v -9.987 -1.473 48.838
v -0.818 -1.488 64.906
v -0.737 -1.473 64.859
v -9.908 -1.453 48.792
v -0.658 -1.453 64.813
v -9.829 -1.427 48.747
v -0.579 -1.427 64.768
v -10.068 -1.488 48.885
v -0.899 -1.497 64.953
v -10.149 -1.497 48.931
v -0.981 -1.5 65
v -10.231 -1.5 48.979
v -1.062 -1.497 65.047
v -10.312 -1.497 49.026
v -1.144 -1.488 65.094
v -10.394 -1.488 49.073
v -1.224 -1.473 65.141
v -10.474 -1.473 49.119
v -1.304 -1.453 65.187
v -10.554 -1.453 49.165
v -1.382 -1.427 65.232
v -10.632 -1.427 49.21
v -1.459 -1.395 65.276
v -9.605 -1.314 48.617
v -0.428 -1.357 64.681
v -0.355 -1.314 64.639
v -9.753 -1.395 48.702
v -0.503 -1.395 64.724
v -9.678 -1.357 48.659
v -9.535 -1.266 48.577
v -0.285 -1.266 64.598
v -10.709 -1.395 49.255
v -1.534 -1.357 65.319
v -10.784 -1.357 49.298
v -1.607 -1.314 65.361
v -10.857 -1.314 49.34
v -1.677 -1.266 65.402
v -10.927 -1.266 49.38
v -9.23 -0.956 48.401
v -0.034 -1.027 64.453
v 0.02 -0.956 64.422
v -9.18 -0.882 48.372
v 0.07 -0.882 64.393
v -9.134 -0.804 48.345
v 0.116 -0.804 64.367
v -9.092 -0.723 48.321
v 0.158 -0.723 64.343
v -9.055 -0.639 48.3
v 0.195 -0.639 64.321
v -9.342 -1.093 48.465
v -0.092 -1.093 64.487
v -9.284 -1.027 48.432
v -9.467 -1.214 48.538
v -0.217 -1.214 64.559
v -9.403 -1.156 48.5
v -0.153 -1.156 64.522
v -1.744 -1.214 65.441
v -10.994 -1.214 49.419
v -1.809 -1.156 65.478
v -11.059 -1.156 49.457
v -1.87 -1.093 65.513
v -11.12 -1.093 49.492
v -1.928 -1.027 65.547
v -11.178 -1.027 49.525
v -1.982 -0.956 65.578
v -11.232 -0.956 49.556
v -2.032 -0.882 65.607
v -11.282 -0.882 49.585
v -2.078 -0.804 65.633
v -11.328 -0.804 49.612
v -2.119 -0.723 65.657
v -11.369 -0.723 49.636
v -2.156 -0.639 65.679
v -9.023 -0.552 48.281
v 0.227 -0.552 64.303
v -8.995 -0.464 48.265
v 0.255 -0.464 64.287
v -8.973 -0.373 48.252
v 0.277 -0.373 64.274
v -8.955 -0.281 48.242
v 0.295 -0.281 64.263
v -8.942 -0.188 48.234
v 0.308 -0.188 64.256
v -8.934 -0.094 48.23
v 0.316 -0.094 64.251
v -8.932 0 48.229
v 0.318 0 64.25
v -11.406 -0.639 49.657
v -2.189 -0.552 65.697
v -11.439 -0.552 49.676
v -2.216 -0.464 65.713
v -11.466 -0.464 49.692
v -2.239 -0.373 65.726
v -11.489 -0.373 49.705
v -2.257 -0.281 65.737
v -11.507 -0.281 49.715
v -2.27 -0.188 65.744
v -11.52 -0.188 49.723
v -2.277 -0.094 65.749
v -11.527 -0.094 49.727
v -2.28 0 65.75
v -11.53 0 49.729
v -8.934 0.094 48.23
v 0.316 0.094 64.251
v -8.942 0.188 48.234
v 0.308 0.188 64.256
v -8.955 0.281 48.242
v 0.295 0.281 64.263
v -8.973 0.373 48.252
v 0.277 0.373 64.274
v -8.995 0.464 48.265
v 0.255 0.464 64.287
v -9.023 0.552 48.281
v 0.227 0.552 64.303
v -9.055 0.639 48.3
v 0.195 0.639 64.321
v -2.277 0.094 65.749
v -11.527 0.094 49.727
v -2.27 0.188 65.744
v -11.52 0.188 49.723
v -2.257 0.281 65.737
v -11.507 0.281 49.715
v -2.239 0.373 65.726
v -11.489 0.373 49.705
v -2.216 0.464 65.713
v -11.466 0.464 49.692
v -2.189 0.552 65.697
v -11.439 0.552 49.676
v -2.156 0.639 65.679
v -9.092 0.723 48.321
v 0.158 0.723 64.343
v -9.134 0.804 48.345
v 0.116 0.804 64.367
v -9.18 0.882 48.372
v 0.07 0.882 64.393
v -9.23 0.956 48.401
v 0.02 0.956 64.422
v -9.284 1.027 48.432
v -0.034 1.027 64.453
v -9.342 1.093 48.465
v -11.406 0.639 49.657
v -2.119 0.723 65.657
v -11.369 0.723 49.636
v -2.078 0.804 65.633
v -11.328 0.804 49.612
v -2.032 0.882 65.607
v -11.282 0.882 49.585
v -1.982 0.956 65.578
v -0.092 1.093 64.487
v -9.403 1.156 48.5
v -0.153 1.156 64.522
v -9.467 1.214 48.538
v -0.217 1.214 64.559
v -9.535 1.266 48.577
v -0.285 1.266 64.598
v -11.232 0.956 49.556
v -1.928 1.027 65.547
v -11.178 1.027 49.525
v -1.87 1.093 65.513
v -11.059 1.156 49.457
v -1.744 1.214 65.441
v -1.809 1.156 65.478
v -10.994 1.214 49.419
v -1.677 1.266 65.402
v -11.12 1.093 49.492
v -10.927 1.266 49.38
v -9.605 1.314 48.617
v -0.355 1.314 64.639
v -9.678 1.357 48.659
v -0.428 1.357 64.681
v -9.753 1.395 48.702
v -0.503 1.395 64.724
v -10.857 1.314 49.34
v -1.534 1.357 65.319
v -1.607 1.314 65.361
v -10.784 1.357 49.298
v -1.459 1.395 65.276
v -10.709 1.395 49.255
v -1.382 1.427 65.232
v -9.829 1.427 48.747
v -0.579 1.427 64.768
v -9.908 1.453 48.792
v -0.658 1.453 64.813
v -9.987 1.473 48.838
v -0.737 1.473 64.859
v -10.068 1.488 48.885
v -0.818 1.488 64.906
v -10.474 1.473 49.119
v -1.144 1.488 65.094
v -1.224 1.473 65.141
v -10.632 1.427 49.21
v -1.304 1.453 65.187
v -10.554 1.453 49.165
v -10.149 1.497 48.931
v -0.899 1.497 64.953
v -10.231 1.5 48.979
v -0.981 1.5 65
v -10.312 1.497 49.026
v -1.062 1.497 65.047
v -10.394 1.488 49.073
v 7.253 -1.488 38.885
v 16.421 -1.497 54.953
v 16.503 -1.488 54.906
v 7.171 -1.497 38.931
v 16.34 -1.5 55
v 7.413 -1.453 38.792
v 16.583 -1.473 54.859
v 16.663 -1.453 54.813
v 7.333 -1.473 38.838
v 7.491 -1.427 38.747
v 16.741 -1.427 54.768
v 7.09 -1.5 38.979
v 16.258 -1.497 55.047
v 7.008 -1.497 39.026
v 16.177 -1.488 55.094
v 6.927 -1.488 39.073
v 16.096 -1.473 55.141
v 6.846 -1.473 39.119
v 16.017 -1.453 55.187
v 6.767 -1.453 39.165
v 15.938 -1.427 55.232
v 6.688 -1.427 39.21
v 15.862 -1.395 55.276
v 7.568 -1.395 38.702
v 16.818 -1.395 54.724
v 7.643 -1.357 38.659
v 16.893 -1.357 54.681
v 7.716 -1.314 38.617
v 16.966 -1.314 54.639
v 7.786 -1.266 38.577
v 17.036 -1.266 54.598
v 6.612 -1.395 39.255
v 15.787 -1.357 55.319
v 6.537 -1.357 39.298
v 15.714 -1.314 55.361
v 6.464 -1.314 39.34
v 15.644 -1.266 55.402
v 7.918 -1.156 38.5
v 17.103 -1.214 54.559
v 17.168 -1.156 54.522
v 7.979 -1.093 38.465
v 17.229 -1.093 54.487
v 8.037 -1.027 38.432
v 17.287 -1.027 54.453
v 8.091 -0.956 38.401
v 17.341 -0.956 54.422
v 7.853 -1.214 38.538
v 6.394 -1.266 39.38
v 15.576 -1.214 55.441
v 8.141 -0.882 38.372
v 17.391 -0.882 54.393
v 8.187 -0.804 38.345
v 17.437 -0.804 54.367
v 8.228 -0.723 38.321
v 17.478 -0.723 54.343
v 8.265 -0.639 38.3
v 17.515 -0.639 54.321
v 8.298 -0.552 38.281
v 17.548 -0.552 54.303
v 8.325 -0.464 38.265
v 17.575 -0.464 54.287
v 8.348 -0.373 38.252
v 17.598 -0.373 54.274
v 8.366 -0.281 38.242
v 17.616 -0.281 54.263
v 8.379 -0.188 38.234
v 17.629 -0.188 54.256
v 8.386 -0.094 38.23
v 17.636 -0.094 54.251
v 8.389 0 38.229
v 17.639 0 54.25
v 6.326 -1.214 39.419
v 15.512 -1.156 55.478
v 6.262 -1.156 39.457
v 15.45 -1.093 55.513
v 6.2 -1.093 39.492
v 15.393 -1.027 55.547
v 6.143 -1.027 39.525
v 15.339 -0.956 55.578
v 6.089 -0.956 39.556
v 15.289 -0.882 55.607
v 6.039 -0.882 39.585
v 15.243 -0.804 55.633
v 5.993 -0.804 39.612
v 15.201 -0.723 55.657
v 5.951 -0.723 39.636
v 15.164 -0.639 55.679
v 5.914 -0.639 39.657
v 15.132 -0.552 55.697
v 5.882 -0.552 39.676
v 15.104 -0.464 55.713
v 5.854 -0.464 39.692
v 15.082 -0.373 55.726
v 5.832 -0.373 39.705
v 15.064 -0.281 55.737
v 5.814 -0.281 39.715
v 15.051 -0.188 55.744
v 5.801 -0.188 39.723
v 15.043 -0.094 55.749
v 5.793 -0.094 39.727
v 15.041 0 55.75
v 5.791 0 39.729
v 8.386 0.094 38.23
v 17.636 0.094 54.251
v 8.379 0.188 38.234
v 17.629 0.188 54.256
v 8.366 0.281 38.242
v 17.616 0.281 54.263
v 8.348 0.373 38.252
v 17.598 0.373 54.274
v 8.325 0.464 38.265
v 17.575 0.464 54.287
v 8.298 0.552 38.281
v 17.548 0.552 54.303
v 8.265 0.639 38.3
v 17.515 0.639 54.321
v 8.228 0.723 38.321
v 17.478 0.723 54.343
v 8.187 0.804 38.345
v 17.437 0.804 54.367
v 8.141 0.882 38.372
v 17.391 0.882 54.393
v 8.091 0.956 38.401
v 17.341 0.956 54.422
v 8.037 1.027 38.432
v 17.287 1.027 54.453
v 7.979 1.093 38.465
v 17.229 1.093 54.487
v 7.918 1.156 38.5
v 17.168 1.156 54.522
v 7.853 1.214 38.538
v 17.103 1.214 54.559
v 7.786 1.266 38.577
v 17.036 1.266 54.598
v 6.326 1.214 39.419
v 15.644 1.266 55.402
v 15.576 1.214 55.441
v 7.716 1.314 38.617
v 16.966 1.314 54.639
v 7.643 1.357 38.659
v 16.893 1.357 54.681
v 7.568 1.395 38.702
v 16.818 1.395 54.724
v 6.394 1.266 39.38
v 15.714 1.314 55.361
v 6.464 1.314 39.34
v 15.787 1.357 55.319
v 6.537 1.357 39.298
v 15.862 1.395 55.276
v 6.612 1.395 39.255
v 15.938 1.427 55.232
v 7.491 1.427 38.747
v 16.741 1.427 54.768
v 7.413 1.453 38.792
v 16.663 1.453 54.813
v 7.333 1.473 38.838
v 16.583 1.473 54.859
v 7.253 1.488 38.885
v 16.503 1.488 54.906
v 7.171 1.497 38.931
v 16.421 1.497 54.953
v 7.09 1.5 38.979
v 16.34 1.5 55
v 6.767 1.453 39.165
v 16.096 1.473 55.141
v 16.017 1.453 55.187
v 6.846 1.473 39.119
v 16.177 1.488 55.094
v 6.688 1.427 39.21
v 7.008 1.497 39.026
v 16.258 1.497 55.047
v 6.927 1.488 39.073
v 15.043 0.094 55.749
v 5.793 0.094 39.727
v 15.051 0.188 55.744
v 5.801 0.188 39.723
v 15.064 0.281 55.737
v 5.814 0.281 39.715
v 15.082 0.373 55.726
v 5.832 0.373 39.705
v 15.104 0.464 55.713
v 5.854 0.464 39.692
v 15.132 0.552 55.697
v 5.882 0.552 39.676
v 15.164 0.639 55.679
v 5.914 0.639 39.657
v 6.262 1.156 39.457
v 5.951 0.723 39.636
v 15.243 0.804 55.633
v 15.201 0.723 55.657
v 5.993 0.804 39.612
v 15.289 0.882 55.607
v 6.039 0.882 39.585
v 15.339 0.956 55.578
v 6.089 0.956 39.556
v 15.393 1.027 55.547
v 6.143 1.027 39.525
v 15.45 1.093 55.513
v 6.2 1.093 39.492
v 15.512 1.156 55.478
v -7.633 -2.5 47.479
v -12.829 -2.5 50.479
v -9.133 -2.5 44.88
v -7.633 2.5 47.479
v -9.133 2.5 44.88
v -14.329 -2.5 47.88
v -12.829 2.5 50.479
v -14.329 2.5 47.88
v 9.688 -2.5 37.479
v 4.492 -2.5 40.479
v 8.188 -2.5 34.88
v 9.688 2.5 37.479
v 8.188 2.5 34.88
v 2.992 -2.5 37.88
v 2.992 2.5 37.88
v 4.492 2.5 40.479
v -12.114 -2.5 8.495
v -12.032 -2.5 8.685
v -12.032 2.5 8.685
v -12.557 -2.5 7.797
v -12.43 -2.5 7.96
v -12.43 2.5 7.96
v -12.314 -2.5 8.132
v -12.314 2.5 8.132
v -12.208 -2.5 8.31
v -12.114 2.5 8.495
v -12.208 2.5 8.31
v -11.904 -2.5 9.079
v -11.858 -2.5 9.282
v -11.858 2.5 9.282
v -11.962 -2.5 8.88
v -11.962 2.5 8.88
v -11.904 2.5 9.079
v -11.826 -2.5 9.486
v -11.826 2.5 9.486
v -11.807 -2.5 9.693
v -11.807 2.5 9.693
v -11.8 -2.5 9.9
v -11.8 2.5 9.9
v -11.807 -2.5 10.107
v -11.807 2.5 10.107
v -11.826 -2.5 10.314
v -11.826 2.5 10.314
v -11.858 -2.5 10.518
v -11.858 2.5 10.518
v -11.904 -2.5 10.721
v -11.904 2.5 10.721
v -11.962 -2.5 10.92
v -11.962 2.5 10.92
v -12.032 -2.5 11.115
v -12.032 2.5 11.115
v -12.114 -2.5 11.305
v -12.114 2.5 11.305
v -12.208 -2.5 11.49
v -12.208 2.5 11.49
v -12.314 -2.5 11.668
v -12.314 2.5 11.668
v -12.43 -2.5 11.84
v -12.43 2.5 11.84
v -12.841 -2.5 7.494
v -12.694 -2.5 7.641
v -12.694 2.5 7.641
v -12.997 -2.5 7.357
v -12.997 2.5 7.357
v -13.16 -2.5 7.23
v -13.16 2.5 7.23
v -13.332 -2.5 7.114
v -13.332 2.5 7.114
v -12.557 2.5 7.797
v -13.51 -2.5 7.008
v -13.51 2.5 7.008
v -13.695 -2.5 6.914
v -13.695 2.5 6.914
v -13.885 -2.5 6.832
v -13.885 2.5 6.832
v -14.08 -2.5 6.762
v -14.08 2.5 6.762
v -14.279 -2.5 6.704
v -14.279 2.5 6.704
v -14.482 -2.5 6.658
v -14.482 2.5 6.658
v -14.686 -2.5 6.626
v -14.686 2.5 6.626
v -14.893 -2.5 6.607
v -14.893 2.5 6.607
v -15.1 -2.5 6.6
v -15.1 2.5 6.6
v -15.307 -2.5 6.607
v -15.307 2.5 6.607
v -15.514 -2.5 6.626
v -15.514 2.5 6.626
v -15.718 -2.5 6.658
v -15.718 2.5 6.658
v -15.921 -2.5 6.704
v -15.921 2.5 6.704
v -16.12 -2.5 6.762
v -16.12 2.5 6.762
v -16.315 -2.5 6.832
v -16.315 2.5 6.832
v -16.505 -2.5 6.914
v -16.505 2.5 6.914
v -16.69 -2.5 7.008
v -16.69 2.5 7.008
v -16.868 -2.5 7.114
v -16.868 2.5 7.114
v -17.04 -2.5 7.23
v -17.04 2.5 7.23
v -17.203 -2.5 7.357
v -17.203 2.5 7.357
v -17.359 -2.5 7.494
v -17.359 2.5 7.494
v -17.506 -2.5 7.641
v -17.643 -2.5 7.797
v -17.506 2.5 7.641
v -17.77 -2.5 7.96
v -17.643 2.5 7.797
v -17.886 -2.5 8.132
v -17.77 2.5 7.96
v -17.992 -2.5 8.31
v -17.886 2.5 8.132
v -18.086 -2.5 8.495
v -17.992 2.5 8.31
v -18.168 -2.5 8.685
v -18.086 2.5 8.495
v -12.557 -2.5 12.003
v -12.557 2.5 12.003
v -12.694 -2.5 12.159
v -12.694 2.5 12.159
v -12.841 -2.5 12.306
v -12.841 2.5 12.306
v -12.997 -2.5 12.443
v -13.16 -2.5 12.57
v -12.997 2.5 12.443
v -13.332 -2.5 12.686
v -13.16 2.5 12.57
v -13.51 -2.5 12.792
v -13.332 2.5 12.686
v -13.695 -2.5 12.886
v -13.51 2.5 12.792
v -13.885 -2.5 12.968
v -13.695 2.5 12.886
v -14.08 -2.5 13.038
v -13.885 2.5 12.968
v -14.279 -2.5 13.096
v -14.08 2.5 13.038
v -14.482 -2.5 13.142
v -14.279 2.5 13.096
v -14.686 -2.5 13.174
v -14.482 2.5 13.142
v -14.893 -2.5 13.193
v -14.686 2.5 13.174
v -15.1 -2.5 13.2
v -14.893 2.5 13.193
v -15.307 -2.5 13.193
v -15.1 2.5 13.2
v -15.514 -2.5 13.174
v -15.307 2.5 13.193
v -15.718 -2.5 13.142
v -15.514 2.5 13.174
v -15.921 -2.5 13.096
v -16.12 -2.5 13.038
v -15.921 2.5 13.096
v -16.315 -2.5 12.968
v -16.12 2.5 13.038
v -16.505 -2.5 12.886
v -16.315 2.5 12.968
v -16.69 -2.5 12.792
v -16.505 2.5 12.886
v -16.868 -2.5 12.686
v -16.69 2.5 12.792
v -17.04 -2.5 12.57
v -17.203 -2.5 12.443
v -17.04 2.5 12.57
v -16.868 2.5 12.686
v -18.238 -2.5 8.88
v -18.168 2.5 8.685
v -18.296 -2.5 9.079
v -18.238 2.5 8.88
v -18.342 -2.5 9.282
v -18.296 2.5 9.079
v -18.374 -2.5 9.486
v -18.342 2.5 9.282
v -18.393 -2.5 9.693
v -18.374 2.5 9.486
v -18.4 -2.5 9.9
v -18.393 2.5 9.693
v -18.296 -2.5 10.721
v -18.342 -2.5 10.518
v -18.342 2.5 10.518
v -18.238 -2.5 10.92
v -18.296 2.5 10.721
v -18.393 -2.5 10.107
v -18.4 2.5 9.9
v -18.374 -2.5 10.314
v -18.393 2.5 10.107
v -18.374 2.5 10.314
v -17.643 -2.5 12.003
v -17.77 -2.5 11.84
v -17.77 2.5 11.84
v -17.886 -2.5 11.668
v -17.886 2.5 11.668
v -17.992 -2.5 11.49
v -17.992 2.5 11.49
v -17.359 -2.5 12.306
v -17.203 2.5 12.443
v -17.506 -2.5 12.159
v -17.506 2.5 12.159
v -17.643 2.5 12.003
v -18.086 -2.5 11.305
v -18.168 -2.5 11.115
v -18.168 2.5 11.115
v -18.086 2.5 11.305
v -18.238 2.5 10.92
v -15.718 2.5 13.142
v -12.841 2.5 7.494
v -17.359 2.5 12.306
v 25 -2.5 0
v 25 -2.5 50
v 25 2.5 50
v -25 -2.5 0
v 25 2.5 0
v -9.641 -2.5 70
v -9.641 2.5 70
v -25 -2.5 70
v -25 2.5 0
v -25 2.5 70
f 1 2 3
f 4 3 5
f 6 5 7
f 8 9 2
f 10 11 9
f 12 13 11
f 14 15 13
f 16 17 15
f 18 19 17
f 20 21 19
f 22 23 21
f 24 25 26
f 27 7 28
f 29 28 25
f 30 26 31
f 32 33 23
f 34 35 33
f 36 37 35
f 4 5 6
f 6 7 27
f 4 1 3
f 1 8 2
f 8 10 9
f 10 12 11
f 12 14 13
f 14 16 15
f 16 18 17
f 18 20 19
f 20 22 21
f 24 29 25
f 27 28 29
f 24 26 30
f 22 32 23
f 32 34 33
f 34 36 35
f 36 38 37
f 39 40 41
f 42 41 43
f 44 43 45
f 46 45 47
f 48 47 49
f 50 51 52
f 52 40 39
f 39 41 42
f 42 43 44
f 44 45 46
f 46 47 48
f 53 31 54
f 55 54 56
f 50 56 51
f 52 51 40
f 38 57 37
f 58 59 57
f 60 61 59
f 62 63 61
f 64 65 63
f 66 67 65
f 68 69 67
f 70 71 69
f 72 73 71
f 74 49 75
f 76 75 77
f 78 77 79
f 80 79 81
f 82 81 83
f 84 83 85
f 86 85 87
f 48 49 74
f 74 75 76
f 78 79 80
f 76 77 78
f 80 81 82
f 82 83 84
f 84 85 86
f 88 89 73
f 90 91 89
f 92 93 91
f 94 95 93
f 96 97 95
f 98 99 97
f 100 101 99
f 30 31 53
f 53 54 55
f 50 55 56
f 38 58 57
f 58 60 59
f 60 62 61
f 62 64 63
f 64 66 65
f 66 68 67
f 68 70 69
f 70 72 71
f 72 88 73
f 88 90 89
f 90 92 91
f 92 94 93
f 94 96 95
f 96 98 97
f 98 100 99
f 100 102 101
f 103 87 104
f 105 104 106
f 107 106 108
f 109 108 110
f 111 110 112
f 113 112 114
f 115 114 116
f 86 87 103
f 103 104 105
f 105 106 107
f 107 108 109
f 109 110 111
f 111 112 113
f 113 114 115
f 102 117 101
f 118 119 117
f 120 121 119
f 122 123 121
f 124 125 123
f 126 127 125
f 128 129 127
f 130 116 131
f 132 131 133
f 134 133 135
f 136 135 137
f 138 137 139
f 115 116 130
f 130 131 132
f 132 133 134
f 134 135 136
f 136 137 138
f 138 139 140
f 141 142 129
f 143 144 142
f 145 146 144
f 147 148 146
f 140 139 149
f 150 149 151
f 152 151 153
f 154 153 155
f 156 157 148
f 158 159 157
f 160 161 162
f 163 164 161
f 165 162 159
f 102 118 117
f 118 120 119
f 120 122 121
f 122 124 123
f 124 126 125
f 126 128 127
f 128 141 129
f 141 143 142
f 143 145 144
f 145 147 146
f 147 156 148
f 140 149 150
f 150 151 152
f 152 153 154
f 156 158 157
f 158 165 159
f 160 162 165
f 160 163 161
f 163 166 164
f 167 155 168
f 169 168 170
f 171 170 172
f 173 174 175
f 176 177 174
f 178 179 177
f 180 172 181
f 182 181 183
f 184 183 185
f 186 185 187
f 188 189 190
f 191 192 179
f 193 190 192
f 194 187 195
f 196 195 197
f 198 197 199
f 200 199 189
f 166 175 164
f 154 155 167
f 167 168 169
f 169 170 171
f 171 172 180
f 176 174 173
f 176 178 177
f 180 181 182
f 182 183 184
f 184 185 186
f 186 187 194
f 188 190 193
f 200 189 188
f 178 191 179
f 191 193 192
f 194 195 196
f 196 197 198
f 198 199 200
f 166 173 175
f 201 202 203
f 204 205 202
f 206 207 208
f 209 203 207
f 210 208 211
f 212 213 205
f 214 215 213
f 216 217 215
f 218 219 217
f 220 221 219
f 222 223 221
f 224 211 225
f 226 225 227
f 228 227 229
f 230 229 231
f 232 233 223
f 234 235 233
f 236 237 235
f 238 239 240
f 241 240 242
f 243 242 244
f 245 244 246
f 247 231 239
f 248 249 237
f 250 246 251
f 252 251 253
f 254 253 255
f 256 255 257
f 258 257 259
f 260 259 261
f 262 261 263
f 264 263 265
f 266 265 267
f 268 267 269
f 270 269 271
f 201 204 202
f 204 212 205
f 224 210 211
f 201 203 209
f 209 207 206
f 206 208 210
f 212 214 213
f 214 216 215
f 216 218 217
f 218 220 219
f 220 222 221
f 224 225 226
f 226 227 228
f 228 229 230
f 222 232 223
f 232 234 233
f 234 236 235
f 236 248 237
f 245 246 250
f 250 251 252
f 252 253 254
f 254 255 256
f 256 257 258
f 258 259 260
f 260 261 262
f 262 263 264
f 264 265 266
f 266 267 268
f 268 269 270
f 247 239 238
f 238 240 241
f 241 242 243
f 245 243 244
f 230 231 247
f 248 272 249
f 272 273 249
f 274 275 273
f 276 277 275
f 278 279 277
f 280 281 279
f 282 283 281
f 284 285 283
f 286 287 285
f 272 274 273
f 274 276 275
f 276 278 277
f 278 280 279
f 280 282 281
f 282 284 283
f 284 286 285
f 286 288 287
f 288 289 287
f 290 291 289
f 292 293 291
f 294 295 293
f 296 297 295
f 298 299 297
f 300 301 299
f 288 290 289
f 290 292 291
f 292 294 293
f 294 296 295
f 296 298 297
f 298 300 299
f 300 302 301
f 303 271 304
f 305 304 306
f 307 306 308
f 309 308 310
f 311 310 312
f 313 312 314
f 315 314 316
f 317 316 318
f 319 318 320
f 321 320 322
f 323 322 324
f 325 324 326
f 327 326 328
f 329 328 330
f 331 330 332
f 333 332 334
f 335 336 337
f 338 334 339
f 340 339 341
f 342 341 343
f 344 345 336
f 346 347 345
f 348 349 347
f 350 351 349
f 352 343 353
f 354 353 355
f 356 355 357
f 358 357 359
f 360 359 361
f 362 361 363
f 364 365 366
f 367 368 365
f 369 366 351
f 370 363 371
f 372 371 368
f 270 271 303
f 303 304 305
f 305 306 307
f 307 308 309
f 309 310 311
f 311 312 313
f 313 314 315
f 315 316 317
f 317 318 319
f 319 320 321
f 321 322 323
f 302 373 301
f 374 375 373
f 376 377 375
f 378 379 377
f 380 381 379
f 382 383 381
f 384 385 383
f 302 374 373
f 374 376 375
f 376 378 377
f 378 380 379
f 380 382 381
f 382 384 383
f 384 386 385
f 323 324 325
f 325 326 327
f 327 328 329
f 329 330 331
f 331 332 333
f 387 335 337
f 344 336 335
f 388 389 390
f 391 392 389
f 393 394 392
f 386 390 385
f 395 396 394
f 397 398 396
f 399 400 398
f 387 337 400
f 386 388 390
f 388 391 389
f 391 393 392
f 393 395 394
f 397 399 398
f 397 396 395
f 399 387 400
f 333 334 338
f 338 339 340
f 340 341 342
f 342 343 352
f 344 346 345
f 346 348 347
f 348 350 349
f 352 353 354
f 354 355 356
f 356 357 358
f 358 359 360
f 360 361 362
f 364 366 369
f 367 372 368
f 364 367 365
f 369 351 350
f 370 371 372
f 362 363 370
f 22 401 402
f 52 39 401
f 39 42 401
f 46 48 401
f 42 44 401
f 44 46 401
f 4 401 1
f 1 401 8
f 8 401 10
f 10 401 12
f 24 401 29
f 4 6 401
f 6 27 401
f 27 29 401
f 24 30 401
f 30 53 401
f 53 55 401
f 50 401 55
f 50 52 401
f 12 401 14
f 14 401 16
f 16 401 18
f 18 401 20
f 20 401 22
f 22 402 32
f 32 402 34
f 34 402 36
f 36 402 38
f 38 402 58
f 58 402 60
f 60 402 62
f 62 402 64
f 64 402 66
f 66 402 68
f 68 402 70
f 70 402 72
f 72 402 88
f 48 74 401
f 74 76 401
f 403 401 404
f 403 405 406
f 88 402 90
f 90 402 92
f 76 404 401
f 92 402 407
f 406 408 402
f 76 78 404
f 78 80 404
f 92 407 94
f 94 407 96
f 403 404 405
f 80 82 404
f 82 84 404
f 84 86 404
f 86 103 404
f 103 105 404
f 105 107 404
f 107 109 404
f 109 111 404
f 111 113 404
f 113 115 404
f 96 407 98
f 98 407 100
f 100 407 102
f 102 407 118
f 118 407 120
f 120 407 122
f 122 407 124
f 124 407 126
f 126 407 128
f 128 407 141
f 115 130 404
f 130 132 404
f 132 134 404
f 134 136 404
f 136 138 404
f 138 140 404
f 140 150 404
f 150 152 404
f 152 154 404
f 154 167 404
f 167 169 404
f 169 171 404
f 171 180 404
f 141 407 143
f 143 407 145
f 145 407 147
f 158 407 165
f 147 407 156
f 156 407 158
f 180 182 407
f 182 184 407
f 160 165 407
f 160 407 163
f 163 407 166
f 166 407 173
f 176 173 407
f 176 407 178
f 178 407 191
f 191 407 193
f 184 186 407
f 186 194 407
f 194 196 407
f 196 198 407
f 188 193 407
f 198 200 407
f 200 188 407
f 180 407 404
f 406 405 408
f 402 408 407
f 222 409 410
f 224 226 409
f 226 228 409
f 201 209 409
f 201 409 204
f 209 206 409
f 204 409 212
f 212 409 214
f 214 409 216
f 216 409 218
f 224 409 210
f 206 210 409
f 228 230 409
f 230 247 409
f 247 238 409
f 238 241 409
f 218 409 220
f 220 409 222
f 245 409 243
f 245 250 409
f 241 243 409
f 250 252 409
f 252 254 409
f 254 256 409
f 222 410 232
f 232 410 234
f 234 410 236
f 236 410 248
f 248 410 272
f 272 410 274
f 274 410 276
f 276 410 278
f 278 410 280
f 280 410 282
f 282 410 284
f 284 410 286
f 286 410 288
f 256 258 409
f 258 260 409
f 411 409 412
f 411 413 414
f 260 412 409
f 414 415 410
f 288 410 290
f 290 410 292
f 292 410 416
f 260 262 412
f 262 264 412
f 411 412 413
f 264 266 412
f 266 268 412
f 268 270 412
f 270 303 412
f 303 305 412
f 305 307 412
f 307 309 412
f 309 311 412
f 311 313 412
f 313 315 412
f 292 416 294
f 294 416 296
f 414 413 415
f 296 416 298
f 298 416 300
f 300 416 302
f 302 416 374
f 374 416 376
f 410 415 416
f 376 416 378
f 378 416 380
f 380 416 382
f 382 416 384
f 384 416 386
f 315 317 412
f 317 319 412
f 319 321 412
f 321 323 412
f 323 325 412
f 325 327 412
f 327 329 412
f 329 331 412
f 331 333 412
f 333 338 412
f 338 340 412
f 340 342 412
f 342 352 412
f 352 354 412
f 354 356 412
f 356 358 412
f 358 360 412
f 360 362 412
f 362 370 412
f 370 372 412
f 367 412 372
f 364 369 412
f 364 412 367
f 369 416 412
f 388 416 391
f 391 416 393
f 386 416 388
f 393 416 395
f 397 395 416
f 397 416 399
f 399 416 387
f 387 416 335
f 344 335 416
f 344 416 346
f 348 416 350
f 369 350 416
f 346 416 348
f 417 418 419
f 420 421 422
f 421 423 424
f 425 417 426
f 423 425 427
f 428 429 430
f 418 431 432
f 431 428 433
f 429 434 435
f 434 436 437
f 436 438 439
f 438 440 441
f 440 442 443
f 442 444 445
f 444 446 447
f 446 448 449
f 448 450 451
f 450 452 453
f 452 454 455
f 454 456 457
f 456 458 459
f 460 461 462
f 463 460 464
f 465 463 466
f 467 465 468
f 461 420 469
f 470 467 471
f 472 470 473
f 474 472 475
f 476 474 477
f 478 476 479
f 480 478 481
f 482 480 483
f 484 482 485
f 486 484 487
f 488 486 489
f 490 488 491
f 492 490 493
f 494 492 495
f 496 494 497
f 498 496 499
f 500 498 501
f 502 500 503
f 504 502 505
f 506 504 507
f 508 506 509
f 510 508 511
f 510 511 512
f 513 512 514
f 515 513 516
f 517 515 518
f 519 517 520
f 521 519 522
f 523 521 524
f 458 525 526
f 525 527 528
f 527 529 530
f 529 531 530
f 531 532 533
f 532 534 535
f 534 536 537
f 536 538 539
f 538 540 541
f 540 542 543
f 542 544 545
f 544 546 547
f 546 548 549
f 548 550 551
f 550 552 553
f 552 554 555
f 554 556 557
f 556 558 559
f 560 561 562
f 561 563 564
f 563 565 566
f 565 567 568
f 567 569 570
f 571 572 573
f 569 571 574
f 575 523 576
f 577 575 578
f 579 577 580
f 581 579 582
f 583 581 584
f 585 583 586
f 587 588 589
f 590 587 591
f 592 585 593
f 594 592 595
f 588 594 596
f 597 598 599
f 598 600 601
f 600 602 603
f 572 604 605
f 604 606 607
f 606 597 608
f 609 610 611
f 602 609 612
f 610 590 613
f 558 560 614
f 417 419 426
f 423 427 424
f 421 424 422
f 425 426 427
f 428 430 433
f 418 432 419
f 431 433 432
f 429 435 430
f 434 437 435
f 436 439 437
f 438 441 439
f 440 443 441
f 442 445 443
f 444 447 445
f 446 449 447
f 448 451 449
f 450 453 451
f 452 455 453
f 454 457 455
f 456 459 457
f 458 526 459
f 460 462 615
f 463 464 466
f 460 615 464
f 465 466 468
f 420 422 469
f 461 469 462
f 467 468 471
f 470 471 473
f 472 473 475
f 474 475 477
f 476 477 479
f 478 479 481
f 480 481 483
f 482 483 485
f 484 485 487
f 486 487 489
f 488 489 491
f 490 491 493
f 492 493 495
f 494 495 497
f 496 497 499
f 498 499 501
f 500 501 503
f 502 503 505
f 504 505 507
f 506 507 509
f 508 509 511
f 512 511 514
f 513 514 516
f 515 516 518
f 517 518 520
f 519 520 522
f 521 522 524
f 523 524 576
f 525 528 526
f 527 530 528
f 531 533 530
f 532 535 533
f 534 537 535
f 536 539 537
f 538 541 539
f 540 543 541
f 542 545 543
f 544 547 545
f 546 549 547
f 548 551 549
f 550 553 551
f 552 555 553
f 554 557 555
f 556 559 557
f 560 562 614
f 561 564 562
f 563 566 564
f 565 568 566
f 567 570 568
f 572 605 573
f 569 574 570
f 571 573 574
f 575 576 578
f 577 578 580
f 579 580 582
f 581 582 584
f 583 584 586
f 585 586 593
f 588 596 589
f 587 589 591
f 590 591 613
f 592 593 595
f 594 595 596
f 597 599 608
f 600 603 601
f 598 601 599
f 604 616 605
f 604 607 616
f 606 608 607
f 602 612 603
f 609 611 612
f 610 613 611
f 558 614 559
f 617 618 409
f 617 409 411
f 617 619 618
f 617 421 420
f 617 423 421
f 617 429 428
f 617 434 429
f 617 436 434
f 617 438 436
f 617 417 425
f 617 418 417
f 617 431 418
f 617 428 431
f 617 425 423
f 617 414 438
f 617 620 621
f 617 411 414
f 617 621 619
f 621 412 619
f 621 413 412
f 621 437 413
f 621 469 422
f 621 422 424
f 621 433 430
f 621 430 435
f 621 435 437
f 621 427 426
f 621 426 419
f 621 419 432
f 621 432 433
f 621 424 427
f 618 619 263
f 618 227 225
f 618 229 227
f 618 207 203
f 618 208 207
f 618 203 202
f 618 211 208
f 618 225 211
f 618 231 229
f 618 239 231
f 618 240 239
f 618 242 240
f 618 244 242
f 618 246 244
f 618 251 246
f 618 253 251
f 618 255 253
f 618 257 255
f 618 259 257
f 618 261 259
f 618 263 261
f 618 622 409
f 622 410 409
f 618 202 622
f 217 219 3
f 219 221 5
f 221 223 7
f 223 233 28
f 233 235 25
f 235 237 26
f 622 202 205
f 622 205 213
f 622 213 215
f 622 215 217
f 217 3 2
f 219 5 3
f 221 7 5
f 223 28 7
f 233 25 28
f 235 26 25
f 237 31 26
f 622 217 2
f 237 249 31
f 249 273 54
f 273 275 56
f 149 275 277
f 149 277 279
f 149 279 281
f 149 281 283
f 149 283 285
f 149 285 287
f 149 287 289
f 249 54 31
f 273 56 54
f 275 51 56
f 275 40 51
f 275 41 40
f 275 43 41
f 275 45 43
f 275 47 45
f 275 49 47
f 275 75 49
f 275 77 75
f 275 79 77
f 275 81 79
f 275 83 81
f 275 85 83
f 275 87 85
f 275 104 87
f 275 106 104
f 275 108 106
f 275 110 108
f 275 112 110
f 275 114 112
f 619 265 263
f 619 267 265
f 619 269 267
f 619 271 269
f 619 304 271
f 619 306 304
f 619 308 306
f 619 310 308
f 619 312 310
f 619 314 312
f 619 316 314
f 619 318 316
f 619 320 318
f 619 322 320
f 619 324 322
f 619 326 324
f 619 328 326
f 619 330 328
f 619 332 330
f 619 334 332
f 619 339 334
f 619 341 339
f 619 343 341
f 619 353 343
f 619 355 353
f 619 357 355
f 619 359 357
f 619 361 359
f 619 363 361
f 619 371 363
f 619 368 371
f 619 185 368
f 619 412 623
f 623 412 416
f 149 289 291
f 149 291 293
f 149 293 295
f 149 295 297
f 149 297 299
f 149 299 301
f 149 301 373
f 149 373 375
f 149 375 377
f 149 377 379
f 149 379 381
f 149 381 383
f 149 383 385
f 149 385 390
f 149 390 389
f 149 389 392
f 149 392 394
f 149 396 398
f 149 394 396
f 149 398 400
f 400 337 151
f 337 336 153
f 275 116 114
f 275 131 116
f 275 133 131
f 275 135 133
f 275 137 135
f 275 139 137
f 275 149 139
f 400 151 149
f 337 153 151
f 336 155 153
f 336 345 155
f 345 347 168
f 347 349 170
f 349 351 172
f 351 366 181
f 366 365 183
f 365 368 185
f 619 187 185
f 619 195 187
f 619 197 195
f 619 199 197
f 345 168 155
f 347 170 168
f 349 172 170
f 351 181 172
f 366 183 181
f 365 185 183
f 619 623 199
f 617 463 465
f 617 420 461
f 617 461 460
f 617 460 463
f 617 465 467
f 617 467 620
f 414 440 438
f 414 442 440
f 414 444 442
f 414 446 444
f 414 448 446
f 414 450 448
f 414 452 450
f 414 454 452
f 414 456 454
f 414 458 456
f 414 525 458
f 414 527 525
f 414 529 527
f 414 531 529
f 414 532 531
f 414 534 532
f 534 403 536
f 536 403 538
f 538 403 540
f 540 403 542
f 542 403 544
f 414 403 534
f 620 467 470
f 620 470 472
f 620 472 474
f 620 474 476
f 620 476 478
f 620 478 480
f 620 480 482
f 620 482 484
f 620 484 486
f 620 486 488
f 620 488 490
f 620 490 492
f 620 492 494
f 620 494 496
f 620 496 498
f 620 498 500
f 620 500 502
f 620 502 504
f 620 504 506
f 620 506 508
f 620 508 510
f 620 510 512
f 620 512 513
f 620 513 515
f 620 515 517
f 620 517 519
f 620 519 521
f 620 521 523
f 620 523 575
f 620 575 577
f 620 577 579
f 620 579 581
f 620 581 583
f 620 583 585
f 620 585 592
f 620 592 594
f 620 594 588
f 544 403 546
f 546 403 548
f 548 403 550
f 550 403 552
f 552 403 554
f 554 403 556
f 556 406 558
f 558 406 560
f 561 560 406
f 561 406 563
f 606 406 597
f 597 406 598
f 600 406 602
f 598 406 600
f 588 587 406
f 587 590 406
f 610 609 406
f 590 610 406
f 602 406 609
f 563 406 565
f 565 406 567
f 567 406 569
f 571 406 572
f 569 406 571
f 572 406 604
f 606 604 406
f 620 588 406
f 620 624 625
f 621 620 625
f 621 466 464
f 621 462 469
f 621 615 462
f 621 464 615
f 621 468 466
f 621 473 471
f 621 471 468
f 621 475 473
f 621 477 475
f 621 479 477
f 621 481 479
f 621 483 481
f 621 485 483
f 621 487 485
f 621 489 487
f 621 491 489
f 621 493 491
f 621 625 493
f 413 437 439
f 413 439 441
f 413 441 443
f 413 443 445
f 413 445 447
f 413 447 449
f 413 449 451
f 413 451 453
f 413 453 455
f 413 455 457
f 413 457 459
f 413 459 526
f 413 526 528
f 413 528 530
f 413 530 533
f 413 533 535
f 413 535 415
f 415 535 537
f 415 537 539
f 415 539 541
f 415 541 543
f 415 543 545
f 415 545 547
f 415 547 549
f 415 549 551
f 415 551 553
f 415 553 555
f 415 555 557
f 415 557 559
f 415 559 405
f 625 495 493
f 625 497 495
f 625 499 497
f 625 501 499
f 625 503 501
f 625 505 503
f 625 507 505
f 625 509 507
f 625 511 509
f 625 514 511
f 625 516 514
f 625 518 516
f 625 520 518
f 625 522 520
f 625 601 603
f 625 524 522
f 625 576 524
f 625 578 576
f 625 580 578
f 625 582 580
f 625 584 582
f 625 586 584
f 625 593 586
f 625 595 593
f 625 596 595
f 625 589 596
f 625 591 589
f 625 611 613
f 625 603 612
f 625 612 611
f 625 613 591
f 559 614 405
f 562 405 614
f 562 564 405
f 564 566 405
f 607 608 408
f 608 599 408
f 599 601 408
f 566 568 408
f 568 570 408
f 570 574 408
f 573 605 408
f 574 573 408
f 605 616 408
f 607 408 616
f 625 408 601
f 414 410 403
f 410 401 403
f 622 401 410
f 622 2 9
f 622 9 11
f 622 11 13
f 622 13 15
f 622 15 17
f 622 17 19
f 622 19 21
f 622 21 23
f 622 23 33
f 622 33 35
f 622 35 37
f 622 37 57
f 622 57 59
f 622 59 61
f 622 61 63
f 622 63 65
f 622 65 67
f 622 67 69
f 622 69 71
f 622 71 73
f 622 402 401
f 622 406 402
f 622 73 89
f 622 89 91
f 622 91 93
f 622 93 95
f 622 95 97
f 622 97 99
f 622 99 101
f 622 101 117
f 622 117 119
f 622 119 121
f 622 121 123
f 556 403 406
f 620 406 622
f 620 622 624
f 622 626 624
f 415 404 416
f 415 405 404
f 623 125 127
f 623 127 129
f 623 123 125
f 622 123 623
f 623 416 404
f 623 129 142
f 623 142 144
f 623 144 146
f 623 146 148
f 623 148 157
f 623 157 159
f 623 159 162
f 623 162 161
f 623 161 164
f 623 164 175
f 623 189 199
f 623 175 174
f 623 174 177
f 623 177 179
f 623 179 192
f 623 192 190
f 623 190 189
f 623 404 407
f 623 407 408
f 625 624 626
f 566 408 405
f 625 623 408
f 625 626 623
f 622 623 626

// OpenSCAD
/**
 * shape_wall_sloped_with_bolt_nut
 *
 * Creates a sloped wall profile with two drilled holes and optional nut slots.
 * The wall is extruded along the Z‑axis with the specified thickness. Two
 * vertical sections (one before the slope and one after) are connected by a
 * linear segment that forms an angled slope. Holes can be placed on either side
 * of the slope at user‑defined distances from the start of the slope.
 *
 * Parameters:
 * - i_l_wall: Length of the wall in the X direction (mm).
 * - i_h_wall: Height of the entire wall in the Y direction (mm).
 * - i_t_wall: Thickness of the wall, extrusion depth along Z (mm).
 *
 * - i_h_wall_vertical: Height of the vertical section before the slope
 *   (mm). The remaining height will be used for the sloped portion.
 * - i_a_slope: Angle of the slope in degrees. 0° = vertical,
 *   90° = horizontal.
 *
 * - i_li_hole_upper: Distance from the start of the slope to the upper
 *   hole along the slope direction (mm).
 * - i_li_hole_lower: Distance from the start of the slope to the lower
 *   hole along the slope direction (mm).
 *
 * - i_d_bolt_drill: Diameter of the drill for both holes (mm).
 * - i_h_bolt: Length of the bolt that passes through the wall (mm).
 * - i_w_nut: Width of the square nut slot (mm).
 * - i_h_nut: Height/thickness of the square nut slot (mm).
 *
 * The module automatically calculates the slope length and positions for
 * the holes. Two cube prisms are added at each hole to represent the
 * mounting nuts, oriented to match the direction of the bolt.
 *
 * Example usage:
 * shape_sloped_wall_with_holes(
 *     i_l_wall=80,
 *     i_h_wall=70,
 *     i_t_wall=5,
 *     i_h_wall_vertical=50,
 *     i_a_slope=60,
 *     i_li_hole_upper=10,
 *     i_li_hole_lower=30,
 *     i_d_bolt_drill=3,
 *     i_h_bolt=20,
 *     i_w_nut=6,
 *     i_h_nut=3
 * );
 */
module shape_wall_sloped_with_bolt_nut
(
	//	OUTER PROFILE
	//Depth of the wall
	i_l_wall = 50,
	//Height of the wall
	i_h_wall = 70,
	//Thickness of the wall
	i_t_wall = 5,
	

	//	SLOPE
	//Vertical section leading to the slope
	i_h_wall_vertical = 50,
	//Angle of the slope 0=VERTICAL 90=Horizontal
	i_a_slope = 60,

	// SLOPE HOLE POSITION
	//Distance of the upper hole from the start of the slope
	i_li_hole_upper = 10,
	//Distance of the lower hole from the start of the slope
	i_li_hole_lower = 30,

	//	HOLE
	//Drill diameter
	i_d_bolt_drill = 3,
	//Length of the bolt
	i_h_bolt = 20,
	//Nut slot width and height
	i_w_nut = 6,
	i_h_nut = 3,

	//extra hole meant for a bolt
	i_d_extra_hole = 6.6
	
)
{

	h_slope = i_h_wall -i_h_wall_vertical;
	//echo("h_slope", h_slope);

	l_slope = h_slope * tan(i_a_slope);
	//echo("l_slope", l_slope);

	//Flat section at the top
	l_wall_horizontal = i_l_wall - l_slope;
	//echo("l_wall_horizontal", l_wall_horizontal);


	//echo("Tan:", tan(i_a_slope));

	//Halfway point slope
	an_slope_halfway =
	[
		l_slope/2,
		i_h_wall -h_slope/2
	];

	//Upper Hole
	an_upper_hole = 
	[
		l_slope - i_li_hole_upper * sin(i_a_slope),
		i_h_wall -i_li_hole_upper * cos(i_a_slope)

	];


	//Lower Hole
	an_lower_hole = 
	[
		l_slope - i_li_hole_lower * sin(i_a_slope),
		i_h_wall -i_li_hole_lower * cos(i_a_slope)

	];

	aan_points = 
	[
		//X = Length Y = Height
		//Bottom Left
		[0,0],
		//Bottom Right
		[i_l_wall,0],
		//Top Right
		[i_l_wall,i_h_wall],
		//Horizontal section leading to the slope
		[l_slope,i_h_wall],
		
		//UPPER HOLE
		an_upper_hole,

		//an_slope_halfway,

		an_lower_hole,

		//Vertical section after the slope
		[0,i_h_wall-h_slope]
		


	];

	//Center on 0,0
	translate([i_l_wall/2,0,0])
	//Put upright
	rotate([90,0,180])
	difference()
	{
		union()
		{
			linear_extrude( i_t_wall,center=true )
			polygon(aan_points);
		} //End sum
		union()
		{
			//	UPPER HOLE
			//Translate in position
			translate(an_upper_hole)
			//Rotate toward the slope
			rotate([0,0,-i_a_slope+90])
			//Point it toward the structure down
			rotate([90,0,0])
			//HACK because of rounding
			translate([0,0,-0.001])
			//This points up
			cylinder(h=i_h_bolt, d=i_d_bolt_drill, $fn = 100);

			//	LOWER HOLE
			//Translate in position
			translate(an_lower_hole)
			//Rotate toward the slope
			rotate([0,0,-i_a_slope+90])
			//Point it toward the structure down
			rotate([90,0,0])
			//HACK because of rounding
			translate([0,0,-0.001])
			//This points up
			cylinder(h=i_h_bolt, d=i_d_bolt_drill, $fn = 100);

			//UPPER NUT
			//Translate in position
			translate(an_upper_hole)
			//Rotate toward the slope
			rotate([0,0,-i_a_slope+90])
			//Translate to the tip of the bolt
			translate([0,-i_h_bolt,0])
			//This points up
			cube([i_w_nut, i_h_nut, i_t_wall*1.1], center=true);

			//LOWER NUT
			//Translate in position
			translate(an_lower_hole)
			//Rotate toward the slope
			rotate([0,0,-i_a_slope+90])
			//Translate to the tip of the bolt
			translate([0,-i_h_bolt,0])
			//This points up
			cube([i_w_nut, i_h_nut, i_t_wall*1.1], center=true);
			
			if (i_d_extra_hole>0)
			translate
			([
				i_l_wall-i_d_extra_hole*1.5,
				i_d_extra_hole*1.5,
				0
			])
			cylinder
			(
				d=i_d_extra_hole,
				h=i_t_wall,
				center=true,
				$fn=100
			);
			
			
		} //End sub

	} //End difference

}

//if (false)
shape_wall_sloped_with_bolt_nut();
